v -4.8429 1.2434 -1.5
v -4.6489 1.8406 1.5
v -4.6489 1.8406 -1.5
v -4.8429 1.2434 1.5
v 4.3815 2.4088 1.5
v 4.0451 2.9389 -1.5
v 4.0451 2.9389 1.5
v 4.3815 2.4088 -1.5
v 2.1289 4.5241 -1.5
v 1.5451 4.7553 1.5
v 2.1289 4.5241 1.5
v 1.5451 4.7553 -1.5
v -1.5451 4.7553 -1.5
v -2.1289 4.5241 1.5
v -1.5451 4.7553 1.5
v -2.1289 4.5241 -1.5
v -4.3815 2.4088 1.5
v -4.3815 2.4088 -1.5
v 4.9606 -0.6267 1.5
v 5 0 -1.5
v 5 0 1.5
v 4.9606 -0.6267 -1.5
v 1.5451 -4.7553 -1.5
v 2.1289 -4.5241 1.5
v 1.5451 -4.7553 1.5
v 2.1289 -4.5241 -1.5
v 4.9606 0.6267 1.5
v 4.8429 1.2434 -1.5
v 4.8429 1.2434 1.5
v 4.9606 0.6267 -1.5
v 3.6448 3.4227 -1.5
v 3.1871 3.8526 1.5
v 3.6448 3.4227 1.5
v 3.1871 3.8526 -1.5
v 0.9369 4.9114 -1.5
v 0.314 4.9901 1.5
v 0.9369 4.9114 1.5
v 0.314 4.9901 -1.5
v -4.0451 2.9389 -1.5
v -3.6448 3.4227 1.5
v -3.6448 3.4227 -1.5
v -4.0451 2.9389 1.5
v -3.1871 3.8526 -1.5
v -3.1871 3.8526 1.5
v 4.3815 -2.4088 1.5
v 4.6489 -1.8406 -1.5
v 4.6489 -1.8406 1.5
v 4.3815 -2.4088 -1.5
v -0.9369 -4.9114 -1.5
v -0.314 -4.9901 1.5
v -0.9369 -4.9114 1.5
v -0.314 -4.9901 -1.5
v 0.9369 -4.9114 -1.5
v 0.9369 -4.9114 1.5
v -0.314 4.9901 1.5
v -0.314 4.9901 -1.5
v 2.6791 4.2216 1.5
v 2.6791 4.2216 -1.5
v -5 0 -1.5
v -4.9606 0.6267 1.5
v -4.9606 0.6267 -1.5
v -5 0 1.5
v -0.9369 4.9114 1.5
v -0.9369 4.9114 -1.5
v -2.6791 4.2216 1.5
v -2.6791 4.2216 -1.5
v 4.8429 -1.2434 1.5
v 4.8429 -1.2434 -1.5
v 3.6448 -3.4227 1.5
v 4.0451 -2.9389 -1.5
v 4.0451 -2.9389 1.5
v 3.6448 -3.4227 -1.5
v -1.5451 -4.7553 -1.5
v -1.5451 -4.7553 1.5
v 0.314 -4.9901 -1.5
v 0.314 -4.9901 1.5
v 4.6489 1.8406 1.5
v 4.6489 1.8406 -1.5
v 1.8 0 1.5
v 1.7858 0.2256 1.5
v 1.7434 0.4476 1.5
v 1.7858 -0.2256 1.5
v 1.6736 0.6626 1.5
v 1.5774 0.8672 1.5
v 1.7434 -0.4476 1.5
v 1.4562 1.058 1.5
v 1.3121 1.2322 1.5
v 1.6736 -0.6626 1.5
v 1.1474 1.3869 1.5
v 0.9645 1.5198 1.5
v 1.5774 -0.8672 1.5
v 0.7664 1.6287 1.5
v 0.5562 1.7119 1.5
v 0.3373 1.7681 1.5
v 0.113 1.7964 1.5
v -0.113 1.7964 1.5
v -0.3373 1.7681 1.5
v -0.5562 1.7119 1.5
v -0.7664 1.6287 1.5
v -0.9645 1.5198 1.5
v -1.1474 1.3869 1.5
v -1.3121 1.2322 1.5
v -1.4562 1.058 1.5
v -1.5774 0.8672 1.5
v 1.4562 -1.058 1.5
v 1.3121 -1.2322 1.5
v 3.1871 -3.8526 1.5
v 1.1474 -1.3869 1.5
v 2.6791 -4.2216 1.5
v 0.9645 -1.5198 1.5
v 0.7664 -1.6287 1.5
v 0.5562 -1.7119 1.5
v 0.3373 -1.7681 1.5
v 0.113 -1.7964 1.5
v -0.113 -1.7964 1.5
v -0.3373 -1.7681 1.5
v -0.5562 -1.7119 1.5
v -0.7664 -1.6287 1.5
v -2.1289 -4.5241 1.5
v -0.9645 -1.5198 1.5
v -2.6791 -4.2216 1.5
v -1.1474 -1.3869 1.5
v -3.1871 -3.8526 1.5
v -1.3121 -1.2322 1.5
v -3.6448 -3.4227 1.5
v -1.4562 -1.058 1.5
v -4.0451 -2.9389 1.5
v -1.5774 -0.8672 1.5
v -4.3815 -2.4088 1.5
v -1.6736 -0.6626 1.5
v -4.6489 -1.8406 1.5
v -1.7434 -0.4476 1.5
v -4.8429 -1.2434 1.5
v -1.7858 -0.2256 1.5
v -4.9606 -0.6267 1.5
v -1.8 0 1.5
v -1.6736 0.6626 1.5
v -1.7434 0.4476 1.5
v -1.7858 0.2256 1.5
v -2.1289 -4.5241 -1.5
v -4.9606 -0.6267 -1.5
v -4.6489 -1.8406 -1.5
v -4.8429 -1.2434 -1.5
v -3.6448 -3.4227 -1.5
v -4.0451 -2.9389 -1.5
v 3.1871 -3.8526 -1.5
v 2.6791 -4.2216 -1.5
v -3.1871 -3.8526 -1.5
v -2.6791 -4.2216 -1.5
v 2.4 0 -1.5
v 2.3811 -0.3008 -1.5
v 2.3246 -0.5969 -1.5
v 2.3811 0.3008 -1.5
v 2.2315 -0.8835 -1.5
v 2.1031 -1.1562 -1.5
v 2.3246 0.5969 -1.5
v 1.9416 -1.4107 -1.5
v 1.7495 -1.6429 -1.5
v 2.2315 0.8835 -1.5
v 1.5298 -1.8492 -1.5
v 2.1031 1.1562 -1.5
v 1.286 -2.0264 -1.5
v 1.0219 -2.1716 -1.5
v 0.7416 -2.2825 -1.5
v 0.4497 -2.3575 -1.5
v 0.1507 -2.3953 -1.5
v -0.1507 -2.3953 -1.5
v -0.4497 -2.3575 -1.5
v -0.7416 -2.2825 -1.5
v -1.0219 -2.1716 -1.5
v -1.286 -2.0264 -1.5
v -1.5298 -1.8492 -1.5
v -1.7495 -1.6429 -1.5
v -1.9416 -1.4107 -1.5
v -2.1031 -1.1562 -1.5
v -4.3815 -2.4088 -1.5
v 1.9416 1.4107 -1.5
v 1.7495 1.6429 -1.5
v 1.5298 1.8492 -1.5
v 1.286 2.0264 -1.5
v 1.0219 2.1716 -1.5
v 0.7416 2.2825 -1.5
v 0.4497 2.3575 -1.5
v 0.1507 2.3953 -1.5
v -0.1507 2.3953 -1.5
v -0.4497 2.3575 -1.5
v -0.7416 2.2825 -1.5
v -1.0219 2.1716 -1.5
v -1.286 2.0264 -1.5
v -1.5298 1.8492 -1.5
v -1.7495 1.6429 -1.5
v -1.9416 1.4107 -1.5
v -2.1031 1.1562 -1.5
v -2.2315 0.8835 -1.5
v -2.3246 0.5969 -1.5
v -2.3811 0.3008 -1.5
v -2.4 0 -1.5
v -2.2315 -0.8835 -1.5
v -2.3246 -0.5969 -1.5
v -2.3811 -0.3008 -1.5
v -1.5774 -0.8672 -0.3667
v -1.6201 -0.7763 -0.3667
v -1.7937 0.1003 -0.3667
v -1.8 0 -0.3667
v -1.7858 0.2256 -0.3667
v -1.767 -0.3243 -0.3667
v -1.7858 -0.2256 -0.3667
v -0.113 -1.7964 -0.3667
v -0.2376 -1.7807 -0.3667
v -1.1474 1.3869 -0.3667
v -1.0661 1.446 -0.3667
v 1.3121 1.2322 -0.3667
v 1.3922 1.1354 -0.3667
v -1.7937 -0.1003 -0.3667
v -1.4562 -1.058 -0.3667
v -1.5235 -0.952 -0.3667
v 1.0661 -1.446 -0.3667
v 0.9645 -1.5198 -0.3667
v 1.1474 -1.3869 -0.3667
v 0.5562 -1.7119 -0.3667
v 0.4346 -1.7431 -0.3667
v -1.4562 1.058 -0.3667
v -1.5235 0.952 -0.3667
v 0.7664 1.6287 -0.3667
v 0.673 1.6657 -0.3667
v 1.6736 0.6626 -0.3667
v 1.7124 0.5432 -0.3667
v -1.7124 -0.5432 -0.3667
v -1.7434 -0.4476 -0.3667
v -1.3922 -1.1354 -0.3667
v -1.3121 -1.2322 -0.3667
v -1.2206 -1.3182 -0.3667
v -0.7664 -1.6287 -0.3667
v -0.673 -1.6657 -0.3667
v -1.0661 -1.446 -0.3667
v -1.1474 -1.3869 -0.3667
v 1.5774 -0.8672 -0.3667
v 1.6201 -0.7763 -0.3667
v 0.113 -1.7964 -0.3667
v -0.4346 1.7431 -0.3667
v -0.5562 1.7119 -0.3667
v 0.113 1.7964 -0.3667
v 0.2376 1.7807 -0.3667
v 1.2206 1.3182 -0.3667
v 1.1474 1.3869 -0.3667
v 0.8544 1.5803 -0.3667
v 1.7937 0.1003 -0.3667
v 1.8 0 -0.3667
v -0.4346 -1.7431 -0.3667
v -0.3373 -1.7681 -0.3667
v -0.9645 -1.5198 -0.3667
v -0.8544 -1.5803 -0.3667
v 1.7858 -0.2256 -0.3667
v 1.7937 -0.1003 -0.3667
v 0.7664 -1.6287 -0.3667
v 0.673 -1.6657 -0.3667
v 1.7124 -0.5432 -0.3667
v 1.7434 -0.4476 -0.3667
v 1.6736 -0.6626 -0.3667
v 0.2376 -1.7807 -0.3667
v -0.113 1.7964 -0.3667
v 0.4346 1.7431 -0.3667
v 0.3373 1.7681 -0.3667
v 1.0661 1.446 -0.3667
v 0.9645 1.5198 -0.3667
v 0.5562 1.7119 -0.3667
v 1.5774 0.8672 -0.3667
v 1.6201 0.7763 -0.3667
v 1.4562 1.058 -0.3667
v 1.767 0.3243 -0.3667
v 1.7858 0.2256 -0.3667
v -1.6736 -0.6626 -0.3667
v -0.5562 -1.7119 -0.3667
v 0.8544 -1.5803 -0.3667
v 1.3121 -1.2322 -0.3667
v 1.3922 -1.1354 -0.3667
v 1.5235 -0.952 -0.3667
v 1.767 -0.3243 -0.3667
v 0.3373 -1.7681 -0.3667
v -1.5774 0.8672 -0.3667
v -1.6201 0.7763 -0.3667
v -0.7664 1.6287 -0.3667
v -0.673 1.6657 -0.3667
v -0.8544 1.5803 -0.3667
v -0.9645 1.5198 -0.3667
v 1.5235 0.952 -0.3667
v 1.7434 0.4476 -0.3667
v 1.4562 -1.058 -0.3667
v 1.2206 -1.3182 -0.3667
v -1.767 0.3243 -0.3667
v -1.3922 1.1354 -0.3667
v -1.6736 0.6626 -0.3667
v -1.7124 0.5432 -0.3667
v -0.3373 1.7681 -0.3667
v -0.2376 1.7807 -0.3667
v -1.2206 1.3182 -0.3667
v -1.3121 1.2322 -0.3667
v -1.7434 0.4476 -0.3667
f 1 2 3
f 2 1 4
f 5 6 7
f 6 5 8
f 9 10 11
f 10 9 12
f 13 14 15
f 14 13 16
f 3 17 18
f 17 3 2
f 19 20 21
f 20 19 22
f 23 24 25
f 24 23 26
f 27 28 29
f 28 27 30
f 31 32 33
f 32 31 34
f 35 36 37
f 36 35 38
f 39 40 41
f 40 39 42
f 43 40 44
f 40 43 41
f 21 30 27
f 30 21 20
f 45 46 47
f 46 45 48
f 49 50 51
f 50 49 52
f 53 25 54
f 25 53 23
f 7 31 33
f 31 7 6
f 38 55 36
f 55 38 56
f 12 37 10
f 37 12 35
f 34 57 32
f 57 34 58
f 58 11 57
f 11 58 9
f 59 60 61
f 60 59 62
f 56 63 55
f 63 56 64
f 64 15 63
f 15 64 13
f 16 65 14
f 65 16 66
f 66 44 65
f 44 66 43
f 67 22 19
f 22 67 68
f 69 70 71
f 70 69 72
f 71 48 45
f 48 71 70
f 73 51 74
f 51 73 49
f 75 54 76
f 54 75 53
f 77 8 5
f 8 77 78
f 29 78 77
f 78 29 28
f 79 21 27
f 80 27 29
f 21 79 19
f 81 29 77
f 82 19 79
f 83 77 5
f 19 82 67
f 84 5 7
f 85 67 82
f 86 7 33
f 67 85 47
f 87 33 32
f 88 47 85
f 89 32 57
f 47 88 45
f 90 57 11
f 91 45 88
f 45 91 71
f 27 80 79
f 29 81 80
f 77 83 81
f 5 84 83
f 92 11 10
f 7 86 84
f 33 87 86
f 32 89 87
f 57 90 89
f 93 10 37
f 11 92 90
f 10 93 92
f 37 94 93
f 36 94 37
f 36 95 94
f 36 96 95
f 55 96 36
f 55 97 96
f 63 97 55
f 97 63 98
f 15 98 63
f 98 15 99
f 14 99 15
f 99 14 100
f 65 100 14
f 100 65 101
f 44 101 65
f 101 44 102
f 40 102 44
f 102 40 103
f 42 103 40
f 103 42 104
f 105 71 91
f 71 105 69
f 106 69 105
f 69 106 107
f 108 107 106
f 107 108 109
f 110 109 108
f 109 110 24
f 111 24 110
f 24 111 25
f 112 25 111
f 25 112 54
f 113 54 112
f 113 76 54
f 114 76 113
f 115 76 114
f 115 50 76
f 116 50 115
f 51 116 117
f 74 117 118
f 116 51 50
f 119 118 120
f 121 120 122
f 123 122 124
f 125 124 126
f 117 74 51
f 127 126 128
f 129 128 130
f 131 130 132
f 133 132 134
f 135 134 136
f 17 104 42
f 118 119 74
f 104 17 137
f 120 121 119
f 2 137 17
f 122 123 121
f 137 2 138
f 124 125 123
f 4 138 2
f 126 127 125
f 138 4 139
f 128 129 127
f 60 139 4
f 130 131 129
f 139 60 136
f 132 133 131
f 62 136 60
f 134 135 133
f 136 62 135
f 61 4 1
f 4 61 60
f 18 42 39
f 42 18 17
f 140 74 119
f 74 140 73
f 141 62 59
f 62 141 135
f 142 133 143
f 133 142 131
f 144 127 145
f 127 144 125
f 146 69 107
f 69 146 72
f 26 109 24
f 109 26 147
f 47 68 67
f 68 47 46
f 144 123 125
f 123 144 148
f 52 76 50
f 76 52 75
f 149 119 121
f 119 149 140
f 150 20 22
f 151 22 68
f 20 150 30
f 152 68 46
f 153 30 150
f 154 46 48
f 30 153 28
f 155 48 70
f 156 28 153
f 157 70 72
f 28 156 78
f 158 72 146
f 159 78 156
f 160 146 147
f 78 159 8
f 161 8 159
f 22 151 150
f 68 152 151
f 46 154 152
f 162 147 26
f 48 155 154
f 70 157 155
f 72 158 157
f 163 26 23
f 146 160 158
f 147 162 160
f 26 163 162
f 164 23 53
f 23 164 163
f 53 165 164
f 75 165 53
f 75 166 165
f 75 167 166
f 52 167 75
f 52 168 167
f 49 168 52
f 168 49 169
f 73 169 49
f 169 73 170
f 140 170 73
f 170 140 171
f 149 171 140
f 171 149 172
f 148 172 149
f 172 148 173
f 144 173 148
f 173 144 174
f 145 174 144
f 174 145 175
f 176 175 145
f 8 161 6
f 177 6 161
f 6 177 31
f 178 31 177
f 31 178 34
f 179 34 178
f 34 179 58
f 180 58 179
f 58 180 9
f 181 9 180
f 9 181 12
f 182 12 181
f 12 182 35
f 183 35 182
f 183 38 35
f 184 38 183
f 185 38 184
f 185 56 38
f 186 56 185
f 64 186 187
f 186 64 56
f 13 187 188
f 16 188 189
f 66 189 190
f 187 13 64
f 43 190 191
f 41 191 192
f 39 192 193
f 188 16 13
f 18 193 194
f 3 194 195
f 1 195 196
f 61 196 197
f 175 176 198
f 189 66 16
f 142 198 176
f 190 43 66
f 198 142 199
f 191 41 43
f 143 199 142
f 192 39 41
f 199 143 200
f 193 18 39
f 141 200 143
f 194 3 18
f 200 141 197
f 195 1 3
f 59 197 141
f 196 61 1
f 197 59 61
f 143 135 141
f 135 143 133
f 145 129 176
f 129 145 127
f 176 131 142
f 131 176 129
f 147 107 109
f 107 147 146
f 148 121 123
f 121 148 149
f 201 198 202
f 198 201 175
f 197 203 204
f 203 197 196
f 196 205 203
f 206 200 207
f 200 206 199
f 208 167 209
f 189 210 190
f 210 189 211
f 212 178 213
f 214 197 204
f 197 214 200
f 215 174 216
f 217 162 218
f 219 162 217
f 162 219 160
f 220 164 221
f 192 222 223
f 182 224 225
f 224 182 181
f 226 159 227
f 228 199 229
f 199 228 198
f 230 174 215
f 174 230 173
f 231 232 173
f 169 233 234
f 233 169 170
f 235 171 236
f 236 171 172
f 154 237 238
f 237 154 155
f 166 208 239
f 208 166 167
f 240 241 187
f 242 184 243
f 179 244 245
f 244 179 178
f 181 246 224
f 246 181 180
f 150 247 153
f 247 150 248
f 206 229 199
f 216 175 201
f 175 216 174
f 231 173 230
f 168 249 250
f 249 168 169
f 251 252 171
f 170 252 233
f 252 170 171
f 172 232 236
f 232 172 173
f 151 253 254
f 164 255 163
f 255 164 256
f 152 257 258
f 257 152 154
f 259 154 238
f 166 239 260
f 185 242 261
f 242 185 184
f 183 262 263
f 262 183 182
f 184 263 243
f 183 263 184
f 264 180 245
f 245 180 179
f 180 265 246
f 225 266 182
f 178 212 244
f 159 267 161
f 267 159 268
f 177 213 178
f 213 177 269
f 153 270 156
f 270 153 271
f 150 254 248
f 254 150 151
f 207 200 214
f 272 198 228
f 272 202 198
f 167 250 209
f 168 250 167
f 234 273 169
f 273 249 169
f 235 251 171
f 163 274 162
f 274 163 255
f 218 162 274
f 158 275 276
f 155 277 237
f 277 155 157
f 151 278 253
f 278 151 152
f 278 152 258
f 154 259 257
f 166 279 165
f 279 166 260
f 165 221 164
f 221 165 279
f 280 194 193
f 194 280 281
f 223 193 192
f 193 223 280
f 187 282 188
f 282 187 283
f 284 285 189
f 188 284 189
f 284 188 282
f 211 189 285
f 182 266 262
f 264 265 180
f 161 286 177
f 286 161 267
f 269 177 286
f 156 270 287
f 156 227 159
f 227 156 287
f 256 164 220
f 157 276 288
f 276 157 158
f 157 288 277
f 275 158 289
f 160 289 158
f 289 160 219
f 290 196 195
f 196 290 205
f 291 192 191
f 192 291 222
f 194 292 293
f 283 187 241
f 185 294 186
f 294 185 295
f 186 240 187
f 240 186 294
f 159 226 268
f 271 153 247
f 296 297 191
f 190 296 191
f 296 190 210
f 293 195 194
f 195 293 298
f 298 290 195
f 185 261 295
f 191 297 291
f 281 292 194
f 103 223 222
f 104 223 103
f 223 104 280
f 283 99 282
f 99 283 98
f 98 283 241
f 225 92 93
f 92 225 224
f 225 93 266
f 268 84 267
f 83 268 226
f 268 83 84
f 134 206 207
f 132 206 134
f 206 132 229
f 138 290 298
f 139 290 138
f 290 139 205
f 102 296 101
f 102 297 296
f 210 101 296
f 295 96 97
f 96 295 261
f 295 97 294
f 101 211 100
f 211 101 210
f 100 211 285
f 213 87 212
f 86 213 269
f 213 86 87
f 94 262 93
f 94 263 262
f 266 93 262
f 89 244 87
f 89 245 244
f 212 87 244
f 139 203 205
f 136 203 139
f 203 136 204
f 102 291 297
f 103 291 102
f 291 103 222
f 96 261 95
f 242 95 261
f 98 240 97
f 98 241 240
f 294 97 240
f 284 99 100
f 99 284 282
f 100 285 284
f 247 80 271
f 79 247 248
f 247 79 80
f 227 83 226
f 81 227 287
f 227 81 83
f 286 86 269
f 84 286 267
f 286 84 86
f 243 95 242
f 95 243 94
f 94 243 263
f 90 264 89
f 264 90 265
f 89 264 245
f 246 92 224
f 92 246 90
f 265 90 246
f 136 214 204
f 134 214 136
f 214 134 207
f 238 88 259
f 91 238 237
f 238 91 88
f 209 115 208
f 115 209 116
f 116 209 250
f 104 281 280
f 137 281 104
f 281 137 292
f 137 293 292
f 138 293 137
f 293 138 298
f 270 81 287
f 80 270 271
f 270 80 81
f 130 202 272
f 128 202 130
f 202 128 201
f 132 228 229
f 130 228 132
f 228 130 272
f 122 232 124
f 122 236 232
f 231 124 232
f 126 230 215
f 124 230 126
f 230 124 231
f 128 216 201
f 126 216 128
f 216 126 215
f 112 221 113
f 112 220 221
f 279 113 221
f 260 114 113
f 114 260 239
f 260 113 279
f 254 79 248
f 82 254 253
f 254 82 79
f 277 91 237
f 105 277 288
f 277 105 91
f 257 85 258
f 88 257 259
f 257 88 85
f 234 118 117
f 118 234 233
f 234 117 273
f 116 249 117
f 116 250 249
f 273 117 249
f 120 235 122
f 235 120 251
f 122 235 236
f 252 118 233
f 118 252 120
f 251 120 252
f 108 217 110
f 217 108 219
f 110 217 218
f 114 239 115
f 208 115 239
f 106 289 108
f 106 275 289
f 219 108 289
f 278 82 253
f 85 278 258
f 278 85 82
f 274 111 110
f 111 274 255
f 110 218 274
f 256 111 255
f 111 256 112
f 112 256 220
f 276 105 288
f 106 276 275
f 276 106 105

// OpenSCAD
$fn = 50;


difference() {
	union() {
		translate(v = [0, 0, -1.5000000000]) {
			cylinder(h = 3, r = 5.0000000000);
		}
		translate(v = [0, 0, -1.5000000000]) {
			cylinder(h = 3, r = 3.0000000000);
		}
	}
	union() {
		translate(v = [0, 0, -1.5000000000]) {
			rotate(a = [0, 180, 0]) {
				difference() {
					union() {
						translate(v = [0, 0, -1.7000000000]) {
							cylinder(h = 1.7000000000, r1 = 1.5000000000, r2 = 2.4000000000);
						}
						translate(v = [0, 0, -3.0000000000]) {
							cylinder(h = 3, r = 1.5000000000);
						}
						translate(v = [0, 0, -3.0000000000]) {
							cylinder(h = 3, r = 1.8000000000);
						}
						translate(v = [0, 0, -3.0000000000]) {
							cylinder(h = 3, r = 1.5000000000);
						}
					}
					union();
				}
			}
		}
		translate(v = [0, 0, -100.0000000000]) {
			cylinder(h = 200, r = 1.5000000000);
		}
	}
}
